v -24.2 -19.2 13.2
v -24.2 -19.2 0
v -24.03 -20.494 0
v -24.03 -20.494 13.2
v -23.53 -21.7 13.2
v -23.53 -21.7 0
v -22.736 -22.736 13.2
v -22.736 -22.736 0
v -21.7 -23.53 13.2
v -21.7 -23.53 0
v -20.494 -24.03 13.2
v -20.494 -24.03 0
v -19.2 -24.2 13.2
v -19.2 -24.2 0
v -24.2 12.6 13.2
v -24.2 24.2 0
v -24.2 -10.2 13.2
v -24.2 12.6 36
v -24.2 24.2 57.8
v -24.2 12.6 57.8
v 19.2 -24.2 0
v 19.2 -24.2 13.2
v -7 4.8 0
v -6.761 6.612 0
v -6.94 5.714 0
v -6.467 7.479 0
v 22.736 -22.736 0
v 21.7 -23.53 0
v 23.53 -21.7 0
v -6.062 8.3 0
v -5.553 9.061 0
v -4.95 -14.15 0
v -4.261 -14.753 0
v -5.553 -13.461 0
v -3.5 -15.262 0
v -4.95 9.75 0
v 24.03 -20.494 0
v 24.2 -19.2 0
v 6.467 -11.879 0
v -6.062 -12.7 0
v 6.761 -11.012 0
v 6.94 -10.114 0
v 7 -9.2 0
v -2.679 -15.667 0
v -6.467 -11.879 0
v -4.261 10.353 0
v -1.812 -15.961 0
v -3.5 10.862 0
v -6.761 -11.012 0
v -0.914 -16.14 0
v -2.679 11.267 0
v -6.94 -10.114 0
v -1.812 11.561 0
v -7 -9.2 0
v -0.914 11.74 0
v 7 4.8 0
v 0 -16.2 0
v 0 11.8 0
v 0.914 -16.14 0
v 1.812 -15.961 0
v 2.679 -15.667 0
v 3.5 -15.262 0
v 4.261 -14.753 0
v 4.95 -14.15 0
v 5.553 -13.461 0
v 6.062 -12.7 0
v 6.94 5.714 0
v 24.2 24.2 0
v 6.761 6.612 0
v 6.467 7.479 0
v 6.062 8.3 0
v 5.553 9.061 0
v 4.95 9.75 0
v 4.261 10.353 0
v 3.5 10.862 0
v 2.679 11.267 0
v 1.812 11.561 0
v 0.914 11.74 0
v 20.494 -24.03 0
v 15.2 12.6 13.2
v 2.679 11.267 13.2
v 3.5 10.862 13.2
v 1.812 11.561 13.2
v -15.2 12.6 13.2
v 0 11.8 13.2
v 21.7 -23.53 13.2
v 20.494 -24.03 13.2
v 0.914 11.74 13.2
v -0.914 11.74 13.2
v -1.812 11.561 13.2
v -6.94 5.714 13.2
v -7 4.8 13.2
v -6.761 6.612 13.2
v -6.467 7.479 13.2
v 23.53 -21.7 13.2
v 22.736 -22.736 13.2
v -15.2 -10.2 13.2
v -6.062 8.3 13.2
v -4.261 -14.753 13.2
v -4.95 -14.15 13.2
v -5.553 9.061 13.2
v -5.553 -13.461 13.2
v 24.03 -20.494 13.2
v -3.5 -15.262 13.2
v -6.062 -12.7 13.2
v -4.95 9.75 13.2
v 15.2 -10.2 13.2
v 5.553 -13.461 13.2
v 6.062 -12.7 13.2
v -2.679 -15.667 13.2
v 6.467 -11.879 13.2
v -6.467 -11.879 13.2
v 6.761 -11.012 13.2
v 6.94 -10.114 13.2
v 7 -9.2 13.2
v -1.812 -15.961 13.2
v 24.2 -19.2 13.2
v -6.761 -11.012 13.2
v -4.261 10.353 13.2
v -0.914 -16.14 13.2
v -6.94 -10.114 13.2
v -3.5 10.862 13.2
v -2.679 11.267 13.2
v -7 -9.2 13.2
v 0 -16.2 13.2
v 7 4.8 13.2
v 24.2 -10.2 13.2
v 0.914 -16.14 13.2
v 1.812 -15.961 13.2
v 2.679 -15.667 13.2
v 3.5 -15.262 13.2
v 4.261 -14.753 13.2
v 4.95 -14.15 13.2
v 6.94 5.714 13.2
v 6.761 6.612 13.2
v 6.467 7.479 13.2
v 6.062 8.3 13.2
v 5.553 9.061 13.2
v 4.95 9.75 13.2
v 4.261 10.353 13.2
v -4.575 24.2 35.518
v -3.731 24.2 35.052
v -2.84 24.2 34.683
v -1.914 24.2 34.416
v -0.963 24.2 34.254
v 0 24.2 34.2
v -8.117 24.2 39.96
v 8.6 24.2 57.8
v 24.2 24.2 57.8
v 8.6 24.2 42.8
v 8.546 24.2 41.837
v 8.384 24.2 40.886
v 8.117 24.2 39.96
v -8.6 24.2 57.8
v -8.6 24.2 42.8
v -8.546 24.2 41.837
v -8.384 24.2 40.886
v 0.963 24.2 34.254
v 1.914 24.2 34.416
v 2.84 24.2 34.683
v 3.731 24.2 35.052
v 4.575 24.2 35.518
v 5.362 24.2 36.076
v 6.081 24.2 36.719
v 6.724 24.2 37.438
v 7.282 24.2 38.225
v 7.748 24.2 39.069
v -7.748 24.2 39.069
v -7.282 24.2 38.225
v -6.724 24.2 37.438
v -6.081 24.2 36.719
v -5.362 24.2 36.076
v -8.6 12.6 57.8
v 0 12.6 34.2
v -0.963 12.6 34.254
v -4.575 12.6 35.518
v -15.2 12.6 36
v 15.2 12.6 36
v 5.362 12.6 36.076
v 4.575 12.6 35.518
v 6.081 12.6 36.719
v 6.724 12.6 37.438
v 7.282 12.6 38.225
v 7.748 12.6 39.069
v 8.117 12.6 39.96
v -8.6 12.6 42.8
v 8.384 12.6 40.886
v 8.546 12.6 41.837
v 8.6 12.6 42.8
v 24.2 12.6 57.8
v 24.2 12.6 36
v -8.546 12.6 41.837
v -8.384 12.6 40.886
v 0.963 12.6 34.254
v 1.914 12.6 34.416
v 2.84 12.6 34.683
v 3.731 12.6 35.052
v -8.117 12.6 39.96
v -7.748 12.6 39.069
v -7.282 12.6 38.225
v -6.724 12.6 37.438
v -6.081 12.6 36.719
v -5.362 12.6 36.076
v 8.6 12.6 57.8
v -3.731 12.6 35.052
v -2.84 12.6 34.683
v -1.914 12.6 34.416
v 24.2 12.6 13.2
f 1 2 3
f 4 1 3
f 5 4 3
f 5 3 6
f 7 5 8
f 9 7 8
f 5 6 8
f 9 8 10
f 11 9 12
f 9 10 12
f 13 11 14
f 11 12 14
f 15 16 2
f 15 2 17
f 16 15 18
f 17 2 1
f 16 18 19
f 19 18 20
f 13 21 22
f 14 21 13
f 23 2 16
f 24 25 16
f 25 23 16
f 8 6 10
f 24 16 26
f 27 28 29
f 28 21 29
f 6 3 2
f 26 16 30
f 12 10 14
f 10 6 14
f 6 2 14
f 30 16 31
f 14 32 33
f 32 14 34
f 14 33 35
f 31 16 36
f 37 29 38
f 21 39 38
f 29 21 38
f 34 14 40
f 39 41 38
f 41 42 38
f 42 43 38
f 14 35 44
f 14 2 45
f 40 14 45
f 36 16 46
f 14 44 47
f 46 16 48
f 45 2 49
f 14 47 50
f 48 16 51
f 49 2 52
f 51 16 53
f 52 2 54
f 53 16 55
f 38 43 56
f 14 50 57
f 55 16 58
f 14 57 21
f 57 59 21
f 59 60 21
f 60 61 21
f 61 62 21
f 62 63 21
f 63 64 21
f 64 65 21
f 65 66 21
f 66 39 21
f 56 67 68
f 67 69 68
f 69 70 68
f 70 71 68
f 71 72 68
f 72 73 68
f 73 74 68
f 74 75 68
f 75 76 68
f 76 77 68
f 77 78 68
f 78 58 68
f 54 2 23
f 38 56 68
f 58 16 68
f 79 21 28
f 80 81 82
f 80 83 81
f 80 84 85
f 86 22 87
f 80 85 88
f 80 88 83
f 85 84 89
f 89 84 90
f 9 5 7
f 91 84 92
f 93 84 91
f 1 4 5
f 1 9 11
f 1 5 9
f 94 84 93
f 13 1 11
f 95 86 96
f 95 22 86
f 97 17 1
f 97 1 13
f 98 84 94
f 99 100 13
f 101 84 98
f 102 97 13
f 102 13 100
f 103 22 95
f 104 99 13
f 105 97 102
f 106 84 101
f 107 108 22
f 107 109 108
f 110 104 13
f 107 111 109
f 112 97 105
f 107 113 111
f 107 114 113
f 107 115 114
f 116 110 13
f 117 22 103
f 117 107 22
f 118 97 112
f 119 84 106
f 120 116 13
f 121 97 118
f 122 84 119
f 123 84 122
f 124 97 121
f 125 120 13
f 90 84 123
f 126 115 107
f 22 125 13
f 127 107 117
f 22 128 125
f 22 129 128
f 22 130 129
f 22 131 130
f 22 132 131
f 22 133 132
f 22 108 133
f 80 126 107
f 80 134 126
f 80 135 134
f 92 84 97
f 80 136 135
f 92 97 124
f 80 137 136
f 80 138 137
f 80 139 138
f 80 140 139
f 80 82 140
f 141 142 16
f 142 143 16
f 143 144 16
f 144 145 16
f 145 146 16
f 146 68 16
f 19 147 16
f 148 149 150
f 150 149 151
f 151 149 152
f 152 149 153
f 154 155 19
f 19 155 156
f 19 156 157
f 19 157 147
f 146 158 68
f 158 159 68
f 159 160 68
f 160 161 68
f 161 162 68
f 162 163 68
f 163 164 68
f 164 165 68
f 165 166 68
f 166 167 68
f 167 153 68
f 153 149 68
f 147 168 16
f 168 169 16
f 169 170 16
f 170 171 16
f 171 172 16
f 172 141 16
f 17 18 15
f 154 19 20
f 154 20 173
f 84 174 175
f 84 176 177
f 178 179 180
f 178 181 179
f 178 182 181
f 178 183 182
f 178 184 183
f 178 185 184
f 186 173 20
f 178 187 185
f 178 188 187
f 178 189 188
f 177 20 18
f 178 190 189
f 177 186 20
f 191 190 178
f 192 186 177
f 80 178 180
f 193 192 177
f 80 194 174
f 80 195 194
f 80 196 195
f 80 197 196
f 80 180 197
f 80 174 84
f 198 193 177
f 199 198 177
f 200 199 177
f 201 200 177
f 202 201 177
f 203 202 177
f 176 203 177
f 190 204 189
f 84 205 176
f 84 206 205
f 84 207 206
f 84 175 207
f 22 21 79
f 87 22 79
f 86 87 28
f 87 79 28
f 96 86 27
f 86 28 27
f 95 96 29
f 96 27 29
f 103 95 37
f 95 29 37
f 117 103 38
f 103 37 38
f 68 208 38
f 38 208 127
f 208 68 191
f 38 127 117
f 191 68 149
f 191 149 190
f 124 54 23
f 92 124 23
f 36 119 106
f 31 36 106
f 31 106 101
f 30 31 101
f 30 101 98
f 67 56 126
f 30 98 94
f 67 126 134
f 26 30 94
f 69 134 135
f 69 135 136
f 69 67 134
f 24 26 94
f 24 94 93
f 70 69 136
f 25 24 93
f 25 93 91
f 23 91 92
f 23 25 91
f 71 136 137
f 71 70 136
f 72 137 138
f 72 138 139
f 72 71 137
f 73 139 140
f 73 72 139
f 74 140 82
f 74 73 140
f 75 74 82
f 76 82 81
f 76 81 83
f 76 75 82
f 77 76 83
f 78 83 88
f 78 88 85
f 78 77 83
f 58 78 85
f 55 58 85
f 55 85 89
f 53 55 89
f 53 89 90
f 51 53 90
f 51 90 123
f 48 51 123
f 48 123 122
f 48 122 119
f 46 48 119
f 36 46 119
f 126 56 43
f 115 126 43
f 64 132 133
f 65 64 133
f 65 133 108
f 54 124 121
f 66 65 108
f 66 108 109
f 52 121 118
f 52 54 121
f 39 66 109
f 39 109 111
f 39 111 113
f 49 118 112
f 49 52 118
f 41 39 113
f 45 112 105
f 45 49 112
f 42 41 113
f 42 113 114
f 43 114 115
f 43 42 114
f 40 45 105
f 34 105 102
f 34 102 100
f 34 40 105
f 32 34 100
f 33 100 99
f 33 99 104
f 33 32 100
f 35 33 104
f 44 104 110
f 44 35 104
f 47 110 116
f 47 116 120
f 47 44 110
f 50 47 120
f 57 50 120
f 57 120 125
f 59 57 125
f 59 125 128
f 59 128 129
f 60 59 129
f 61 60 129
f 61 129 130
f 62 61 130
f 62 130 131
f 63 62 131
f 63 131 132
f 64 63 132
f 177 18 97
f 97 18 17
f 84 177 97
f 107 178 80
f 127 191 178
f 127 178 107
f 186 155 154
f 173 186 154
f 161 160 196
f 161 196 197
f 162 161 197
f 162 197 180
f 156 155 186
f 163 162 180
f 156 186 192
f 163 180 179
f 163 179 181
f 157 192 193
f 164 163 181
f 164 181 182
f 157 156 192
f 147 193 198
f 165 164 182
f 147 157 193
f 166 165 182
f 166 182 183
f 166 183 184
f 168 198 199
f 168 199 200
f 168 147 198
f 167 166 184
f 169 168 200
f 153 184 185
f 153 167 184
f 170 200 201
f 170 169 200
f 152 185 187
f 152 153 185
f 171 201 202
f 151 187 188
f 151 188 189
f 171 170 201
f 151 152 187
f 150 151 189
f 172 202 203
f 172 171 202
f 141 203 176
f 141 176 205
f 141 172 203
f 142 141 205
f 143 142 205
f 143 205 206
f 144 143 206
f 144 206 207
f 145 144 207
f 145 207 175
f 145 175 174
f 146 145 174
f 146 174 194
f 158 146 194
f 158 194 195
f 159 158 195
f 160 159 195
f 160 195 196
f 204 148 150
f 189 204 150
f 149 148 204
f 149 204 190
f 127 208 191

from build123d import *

# Parameters (mm, degrees)
PAD001_DEPTH = 11.6
PAD_DEPTH    = 13.2
PAD002_DEPTH = 9
PAD003_DEPTH = 9


with BuildPart() as frontal:
    # Sketch001 → Pad001 (new body)
    with BuildSketch(Plane.XZ.offset(-24.2)):
        with BuildLine():
            Line((-24.2, 57.8), (-8.6, 57.8))
            Line((-8.6, 42.8), (-8.6, 57.8))
            ThreePointArc((-8.6, 42.8), (0, 34.2), (8.6, 42.8))
            Line((8.6, 57.8), (8.6, 42.8))
            Line((8.6, 57.8), (24.2, 57.8))
            Line((24.2, 57.8), (24.2, 13.2))
            Line((24.2, 13.2), (-24.2, 13.2))
            Line((-24.2, 13.2), (-24.2, 57.8))
        make_face()
    extrude(amount=PAD001_DEPTH)


with BuildPart() as pieza_sin_chaflanes:
    # Sketch → Pad (new body)
    with BuildSketch(Plane.XY):
        with BuildLine():
            Line((-24.2, 24.2), (24.2, 24.2))
            Line((24.2, 24.2), (24.2, -19.2))
            ThreePointArc((19.2, -24.2), (22.735534, -22.735534), (24.2, -19.2))
            Line((19.2, -24.2), (-19.2, -24.2))
            ThreePointArc((-24.2, -19.2), (-22.735534, -22.735534), (-19.2, -24.2))
            Line((-24.2, -19.2), (-24.2, 24.2))
        make_face()
        with BuildLine():
            Line((7, 4.8), (7, -9.2))
            ThreePointArc((-7, -9.2), (0, -16.2), (7, -9.2))
            Line((-7, -9.2), (-7, 4.8))
            ThreePointArc((7, 4.8), (0, 11.8), (-7, 4.8))
        make_face(mode=Mode.SUBTRACT)
    extrude(amount=PAD_DEPTH)

    # Fusion: union Frontal
    add(frontal.part)


with BuildPart() as escuadra_izquierda:
    # Sketch002 → Pad002 (new body)
    with BuildSketch(Plane.YZ.offset(-24.2)):
        Polygon((-10.2, 13.2), (12.6, 13.2), (12.6, 36), align=None)
    extrude(amount=PAD002_DEPTH)


with BuildPart() as huecos_escuadras:
    # Sketch003 → Pad003 (new body)
    with BuildSketch(Plane.YZ.offset(24.2)):
        Polygon((-10.2, 13.2), (12.6, 13.2), (12.6, 36), align=None)
    extrude(amount=-PAD003_DEPTH)

    # Fusion001: union Escuadra-izquierda
    add(escuadra_izquierda.part)

    # Fusion002: union Pieza sin chaflanes
    add(pieza_sin_chaflanes.part)


solid = huecos_escuadras.part
